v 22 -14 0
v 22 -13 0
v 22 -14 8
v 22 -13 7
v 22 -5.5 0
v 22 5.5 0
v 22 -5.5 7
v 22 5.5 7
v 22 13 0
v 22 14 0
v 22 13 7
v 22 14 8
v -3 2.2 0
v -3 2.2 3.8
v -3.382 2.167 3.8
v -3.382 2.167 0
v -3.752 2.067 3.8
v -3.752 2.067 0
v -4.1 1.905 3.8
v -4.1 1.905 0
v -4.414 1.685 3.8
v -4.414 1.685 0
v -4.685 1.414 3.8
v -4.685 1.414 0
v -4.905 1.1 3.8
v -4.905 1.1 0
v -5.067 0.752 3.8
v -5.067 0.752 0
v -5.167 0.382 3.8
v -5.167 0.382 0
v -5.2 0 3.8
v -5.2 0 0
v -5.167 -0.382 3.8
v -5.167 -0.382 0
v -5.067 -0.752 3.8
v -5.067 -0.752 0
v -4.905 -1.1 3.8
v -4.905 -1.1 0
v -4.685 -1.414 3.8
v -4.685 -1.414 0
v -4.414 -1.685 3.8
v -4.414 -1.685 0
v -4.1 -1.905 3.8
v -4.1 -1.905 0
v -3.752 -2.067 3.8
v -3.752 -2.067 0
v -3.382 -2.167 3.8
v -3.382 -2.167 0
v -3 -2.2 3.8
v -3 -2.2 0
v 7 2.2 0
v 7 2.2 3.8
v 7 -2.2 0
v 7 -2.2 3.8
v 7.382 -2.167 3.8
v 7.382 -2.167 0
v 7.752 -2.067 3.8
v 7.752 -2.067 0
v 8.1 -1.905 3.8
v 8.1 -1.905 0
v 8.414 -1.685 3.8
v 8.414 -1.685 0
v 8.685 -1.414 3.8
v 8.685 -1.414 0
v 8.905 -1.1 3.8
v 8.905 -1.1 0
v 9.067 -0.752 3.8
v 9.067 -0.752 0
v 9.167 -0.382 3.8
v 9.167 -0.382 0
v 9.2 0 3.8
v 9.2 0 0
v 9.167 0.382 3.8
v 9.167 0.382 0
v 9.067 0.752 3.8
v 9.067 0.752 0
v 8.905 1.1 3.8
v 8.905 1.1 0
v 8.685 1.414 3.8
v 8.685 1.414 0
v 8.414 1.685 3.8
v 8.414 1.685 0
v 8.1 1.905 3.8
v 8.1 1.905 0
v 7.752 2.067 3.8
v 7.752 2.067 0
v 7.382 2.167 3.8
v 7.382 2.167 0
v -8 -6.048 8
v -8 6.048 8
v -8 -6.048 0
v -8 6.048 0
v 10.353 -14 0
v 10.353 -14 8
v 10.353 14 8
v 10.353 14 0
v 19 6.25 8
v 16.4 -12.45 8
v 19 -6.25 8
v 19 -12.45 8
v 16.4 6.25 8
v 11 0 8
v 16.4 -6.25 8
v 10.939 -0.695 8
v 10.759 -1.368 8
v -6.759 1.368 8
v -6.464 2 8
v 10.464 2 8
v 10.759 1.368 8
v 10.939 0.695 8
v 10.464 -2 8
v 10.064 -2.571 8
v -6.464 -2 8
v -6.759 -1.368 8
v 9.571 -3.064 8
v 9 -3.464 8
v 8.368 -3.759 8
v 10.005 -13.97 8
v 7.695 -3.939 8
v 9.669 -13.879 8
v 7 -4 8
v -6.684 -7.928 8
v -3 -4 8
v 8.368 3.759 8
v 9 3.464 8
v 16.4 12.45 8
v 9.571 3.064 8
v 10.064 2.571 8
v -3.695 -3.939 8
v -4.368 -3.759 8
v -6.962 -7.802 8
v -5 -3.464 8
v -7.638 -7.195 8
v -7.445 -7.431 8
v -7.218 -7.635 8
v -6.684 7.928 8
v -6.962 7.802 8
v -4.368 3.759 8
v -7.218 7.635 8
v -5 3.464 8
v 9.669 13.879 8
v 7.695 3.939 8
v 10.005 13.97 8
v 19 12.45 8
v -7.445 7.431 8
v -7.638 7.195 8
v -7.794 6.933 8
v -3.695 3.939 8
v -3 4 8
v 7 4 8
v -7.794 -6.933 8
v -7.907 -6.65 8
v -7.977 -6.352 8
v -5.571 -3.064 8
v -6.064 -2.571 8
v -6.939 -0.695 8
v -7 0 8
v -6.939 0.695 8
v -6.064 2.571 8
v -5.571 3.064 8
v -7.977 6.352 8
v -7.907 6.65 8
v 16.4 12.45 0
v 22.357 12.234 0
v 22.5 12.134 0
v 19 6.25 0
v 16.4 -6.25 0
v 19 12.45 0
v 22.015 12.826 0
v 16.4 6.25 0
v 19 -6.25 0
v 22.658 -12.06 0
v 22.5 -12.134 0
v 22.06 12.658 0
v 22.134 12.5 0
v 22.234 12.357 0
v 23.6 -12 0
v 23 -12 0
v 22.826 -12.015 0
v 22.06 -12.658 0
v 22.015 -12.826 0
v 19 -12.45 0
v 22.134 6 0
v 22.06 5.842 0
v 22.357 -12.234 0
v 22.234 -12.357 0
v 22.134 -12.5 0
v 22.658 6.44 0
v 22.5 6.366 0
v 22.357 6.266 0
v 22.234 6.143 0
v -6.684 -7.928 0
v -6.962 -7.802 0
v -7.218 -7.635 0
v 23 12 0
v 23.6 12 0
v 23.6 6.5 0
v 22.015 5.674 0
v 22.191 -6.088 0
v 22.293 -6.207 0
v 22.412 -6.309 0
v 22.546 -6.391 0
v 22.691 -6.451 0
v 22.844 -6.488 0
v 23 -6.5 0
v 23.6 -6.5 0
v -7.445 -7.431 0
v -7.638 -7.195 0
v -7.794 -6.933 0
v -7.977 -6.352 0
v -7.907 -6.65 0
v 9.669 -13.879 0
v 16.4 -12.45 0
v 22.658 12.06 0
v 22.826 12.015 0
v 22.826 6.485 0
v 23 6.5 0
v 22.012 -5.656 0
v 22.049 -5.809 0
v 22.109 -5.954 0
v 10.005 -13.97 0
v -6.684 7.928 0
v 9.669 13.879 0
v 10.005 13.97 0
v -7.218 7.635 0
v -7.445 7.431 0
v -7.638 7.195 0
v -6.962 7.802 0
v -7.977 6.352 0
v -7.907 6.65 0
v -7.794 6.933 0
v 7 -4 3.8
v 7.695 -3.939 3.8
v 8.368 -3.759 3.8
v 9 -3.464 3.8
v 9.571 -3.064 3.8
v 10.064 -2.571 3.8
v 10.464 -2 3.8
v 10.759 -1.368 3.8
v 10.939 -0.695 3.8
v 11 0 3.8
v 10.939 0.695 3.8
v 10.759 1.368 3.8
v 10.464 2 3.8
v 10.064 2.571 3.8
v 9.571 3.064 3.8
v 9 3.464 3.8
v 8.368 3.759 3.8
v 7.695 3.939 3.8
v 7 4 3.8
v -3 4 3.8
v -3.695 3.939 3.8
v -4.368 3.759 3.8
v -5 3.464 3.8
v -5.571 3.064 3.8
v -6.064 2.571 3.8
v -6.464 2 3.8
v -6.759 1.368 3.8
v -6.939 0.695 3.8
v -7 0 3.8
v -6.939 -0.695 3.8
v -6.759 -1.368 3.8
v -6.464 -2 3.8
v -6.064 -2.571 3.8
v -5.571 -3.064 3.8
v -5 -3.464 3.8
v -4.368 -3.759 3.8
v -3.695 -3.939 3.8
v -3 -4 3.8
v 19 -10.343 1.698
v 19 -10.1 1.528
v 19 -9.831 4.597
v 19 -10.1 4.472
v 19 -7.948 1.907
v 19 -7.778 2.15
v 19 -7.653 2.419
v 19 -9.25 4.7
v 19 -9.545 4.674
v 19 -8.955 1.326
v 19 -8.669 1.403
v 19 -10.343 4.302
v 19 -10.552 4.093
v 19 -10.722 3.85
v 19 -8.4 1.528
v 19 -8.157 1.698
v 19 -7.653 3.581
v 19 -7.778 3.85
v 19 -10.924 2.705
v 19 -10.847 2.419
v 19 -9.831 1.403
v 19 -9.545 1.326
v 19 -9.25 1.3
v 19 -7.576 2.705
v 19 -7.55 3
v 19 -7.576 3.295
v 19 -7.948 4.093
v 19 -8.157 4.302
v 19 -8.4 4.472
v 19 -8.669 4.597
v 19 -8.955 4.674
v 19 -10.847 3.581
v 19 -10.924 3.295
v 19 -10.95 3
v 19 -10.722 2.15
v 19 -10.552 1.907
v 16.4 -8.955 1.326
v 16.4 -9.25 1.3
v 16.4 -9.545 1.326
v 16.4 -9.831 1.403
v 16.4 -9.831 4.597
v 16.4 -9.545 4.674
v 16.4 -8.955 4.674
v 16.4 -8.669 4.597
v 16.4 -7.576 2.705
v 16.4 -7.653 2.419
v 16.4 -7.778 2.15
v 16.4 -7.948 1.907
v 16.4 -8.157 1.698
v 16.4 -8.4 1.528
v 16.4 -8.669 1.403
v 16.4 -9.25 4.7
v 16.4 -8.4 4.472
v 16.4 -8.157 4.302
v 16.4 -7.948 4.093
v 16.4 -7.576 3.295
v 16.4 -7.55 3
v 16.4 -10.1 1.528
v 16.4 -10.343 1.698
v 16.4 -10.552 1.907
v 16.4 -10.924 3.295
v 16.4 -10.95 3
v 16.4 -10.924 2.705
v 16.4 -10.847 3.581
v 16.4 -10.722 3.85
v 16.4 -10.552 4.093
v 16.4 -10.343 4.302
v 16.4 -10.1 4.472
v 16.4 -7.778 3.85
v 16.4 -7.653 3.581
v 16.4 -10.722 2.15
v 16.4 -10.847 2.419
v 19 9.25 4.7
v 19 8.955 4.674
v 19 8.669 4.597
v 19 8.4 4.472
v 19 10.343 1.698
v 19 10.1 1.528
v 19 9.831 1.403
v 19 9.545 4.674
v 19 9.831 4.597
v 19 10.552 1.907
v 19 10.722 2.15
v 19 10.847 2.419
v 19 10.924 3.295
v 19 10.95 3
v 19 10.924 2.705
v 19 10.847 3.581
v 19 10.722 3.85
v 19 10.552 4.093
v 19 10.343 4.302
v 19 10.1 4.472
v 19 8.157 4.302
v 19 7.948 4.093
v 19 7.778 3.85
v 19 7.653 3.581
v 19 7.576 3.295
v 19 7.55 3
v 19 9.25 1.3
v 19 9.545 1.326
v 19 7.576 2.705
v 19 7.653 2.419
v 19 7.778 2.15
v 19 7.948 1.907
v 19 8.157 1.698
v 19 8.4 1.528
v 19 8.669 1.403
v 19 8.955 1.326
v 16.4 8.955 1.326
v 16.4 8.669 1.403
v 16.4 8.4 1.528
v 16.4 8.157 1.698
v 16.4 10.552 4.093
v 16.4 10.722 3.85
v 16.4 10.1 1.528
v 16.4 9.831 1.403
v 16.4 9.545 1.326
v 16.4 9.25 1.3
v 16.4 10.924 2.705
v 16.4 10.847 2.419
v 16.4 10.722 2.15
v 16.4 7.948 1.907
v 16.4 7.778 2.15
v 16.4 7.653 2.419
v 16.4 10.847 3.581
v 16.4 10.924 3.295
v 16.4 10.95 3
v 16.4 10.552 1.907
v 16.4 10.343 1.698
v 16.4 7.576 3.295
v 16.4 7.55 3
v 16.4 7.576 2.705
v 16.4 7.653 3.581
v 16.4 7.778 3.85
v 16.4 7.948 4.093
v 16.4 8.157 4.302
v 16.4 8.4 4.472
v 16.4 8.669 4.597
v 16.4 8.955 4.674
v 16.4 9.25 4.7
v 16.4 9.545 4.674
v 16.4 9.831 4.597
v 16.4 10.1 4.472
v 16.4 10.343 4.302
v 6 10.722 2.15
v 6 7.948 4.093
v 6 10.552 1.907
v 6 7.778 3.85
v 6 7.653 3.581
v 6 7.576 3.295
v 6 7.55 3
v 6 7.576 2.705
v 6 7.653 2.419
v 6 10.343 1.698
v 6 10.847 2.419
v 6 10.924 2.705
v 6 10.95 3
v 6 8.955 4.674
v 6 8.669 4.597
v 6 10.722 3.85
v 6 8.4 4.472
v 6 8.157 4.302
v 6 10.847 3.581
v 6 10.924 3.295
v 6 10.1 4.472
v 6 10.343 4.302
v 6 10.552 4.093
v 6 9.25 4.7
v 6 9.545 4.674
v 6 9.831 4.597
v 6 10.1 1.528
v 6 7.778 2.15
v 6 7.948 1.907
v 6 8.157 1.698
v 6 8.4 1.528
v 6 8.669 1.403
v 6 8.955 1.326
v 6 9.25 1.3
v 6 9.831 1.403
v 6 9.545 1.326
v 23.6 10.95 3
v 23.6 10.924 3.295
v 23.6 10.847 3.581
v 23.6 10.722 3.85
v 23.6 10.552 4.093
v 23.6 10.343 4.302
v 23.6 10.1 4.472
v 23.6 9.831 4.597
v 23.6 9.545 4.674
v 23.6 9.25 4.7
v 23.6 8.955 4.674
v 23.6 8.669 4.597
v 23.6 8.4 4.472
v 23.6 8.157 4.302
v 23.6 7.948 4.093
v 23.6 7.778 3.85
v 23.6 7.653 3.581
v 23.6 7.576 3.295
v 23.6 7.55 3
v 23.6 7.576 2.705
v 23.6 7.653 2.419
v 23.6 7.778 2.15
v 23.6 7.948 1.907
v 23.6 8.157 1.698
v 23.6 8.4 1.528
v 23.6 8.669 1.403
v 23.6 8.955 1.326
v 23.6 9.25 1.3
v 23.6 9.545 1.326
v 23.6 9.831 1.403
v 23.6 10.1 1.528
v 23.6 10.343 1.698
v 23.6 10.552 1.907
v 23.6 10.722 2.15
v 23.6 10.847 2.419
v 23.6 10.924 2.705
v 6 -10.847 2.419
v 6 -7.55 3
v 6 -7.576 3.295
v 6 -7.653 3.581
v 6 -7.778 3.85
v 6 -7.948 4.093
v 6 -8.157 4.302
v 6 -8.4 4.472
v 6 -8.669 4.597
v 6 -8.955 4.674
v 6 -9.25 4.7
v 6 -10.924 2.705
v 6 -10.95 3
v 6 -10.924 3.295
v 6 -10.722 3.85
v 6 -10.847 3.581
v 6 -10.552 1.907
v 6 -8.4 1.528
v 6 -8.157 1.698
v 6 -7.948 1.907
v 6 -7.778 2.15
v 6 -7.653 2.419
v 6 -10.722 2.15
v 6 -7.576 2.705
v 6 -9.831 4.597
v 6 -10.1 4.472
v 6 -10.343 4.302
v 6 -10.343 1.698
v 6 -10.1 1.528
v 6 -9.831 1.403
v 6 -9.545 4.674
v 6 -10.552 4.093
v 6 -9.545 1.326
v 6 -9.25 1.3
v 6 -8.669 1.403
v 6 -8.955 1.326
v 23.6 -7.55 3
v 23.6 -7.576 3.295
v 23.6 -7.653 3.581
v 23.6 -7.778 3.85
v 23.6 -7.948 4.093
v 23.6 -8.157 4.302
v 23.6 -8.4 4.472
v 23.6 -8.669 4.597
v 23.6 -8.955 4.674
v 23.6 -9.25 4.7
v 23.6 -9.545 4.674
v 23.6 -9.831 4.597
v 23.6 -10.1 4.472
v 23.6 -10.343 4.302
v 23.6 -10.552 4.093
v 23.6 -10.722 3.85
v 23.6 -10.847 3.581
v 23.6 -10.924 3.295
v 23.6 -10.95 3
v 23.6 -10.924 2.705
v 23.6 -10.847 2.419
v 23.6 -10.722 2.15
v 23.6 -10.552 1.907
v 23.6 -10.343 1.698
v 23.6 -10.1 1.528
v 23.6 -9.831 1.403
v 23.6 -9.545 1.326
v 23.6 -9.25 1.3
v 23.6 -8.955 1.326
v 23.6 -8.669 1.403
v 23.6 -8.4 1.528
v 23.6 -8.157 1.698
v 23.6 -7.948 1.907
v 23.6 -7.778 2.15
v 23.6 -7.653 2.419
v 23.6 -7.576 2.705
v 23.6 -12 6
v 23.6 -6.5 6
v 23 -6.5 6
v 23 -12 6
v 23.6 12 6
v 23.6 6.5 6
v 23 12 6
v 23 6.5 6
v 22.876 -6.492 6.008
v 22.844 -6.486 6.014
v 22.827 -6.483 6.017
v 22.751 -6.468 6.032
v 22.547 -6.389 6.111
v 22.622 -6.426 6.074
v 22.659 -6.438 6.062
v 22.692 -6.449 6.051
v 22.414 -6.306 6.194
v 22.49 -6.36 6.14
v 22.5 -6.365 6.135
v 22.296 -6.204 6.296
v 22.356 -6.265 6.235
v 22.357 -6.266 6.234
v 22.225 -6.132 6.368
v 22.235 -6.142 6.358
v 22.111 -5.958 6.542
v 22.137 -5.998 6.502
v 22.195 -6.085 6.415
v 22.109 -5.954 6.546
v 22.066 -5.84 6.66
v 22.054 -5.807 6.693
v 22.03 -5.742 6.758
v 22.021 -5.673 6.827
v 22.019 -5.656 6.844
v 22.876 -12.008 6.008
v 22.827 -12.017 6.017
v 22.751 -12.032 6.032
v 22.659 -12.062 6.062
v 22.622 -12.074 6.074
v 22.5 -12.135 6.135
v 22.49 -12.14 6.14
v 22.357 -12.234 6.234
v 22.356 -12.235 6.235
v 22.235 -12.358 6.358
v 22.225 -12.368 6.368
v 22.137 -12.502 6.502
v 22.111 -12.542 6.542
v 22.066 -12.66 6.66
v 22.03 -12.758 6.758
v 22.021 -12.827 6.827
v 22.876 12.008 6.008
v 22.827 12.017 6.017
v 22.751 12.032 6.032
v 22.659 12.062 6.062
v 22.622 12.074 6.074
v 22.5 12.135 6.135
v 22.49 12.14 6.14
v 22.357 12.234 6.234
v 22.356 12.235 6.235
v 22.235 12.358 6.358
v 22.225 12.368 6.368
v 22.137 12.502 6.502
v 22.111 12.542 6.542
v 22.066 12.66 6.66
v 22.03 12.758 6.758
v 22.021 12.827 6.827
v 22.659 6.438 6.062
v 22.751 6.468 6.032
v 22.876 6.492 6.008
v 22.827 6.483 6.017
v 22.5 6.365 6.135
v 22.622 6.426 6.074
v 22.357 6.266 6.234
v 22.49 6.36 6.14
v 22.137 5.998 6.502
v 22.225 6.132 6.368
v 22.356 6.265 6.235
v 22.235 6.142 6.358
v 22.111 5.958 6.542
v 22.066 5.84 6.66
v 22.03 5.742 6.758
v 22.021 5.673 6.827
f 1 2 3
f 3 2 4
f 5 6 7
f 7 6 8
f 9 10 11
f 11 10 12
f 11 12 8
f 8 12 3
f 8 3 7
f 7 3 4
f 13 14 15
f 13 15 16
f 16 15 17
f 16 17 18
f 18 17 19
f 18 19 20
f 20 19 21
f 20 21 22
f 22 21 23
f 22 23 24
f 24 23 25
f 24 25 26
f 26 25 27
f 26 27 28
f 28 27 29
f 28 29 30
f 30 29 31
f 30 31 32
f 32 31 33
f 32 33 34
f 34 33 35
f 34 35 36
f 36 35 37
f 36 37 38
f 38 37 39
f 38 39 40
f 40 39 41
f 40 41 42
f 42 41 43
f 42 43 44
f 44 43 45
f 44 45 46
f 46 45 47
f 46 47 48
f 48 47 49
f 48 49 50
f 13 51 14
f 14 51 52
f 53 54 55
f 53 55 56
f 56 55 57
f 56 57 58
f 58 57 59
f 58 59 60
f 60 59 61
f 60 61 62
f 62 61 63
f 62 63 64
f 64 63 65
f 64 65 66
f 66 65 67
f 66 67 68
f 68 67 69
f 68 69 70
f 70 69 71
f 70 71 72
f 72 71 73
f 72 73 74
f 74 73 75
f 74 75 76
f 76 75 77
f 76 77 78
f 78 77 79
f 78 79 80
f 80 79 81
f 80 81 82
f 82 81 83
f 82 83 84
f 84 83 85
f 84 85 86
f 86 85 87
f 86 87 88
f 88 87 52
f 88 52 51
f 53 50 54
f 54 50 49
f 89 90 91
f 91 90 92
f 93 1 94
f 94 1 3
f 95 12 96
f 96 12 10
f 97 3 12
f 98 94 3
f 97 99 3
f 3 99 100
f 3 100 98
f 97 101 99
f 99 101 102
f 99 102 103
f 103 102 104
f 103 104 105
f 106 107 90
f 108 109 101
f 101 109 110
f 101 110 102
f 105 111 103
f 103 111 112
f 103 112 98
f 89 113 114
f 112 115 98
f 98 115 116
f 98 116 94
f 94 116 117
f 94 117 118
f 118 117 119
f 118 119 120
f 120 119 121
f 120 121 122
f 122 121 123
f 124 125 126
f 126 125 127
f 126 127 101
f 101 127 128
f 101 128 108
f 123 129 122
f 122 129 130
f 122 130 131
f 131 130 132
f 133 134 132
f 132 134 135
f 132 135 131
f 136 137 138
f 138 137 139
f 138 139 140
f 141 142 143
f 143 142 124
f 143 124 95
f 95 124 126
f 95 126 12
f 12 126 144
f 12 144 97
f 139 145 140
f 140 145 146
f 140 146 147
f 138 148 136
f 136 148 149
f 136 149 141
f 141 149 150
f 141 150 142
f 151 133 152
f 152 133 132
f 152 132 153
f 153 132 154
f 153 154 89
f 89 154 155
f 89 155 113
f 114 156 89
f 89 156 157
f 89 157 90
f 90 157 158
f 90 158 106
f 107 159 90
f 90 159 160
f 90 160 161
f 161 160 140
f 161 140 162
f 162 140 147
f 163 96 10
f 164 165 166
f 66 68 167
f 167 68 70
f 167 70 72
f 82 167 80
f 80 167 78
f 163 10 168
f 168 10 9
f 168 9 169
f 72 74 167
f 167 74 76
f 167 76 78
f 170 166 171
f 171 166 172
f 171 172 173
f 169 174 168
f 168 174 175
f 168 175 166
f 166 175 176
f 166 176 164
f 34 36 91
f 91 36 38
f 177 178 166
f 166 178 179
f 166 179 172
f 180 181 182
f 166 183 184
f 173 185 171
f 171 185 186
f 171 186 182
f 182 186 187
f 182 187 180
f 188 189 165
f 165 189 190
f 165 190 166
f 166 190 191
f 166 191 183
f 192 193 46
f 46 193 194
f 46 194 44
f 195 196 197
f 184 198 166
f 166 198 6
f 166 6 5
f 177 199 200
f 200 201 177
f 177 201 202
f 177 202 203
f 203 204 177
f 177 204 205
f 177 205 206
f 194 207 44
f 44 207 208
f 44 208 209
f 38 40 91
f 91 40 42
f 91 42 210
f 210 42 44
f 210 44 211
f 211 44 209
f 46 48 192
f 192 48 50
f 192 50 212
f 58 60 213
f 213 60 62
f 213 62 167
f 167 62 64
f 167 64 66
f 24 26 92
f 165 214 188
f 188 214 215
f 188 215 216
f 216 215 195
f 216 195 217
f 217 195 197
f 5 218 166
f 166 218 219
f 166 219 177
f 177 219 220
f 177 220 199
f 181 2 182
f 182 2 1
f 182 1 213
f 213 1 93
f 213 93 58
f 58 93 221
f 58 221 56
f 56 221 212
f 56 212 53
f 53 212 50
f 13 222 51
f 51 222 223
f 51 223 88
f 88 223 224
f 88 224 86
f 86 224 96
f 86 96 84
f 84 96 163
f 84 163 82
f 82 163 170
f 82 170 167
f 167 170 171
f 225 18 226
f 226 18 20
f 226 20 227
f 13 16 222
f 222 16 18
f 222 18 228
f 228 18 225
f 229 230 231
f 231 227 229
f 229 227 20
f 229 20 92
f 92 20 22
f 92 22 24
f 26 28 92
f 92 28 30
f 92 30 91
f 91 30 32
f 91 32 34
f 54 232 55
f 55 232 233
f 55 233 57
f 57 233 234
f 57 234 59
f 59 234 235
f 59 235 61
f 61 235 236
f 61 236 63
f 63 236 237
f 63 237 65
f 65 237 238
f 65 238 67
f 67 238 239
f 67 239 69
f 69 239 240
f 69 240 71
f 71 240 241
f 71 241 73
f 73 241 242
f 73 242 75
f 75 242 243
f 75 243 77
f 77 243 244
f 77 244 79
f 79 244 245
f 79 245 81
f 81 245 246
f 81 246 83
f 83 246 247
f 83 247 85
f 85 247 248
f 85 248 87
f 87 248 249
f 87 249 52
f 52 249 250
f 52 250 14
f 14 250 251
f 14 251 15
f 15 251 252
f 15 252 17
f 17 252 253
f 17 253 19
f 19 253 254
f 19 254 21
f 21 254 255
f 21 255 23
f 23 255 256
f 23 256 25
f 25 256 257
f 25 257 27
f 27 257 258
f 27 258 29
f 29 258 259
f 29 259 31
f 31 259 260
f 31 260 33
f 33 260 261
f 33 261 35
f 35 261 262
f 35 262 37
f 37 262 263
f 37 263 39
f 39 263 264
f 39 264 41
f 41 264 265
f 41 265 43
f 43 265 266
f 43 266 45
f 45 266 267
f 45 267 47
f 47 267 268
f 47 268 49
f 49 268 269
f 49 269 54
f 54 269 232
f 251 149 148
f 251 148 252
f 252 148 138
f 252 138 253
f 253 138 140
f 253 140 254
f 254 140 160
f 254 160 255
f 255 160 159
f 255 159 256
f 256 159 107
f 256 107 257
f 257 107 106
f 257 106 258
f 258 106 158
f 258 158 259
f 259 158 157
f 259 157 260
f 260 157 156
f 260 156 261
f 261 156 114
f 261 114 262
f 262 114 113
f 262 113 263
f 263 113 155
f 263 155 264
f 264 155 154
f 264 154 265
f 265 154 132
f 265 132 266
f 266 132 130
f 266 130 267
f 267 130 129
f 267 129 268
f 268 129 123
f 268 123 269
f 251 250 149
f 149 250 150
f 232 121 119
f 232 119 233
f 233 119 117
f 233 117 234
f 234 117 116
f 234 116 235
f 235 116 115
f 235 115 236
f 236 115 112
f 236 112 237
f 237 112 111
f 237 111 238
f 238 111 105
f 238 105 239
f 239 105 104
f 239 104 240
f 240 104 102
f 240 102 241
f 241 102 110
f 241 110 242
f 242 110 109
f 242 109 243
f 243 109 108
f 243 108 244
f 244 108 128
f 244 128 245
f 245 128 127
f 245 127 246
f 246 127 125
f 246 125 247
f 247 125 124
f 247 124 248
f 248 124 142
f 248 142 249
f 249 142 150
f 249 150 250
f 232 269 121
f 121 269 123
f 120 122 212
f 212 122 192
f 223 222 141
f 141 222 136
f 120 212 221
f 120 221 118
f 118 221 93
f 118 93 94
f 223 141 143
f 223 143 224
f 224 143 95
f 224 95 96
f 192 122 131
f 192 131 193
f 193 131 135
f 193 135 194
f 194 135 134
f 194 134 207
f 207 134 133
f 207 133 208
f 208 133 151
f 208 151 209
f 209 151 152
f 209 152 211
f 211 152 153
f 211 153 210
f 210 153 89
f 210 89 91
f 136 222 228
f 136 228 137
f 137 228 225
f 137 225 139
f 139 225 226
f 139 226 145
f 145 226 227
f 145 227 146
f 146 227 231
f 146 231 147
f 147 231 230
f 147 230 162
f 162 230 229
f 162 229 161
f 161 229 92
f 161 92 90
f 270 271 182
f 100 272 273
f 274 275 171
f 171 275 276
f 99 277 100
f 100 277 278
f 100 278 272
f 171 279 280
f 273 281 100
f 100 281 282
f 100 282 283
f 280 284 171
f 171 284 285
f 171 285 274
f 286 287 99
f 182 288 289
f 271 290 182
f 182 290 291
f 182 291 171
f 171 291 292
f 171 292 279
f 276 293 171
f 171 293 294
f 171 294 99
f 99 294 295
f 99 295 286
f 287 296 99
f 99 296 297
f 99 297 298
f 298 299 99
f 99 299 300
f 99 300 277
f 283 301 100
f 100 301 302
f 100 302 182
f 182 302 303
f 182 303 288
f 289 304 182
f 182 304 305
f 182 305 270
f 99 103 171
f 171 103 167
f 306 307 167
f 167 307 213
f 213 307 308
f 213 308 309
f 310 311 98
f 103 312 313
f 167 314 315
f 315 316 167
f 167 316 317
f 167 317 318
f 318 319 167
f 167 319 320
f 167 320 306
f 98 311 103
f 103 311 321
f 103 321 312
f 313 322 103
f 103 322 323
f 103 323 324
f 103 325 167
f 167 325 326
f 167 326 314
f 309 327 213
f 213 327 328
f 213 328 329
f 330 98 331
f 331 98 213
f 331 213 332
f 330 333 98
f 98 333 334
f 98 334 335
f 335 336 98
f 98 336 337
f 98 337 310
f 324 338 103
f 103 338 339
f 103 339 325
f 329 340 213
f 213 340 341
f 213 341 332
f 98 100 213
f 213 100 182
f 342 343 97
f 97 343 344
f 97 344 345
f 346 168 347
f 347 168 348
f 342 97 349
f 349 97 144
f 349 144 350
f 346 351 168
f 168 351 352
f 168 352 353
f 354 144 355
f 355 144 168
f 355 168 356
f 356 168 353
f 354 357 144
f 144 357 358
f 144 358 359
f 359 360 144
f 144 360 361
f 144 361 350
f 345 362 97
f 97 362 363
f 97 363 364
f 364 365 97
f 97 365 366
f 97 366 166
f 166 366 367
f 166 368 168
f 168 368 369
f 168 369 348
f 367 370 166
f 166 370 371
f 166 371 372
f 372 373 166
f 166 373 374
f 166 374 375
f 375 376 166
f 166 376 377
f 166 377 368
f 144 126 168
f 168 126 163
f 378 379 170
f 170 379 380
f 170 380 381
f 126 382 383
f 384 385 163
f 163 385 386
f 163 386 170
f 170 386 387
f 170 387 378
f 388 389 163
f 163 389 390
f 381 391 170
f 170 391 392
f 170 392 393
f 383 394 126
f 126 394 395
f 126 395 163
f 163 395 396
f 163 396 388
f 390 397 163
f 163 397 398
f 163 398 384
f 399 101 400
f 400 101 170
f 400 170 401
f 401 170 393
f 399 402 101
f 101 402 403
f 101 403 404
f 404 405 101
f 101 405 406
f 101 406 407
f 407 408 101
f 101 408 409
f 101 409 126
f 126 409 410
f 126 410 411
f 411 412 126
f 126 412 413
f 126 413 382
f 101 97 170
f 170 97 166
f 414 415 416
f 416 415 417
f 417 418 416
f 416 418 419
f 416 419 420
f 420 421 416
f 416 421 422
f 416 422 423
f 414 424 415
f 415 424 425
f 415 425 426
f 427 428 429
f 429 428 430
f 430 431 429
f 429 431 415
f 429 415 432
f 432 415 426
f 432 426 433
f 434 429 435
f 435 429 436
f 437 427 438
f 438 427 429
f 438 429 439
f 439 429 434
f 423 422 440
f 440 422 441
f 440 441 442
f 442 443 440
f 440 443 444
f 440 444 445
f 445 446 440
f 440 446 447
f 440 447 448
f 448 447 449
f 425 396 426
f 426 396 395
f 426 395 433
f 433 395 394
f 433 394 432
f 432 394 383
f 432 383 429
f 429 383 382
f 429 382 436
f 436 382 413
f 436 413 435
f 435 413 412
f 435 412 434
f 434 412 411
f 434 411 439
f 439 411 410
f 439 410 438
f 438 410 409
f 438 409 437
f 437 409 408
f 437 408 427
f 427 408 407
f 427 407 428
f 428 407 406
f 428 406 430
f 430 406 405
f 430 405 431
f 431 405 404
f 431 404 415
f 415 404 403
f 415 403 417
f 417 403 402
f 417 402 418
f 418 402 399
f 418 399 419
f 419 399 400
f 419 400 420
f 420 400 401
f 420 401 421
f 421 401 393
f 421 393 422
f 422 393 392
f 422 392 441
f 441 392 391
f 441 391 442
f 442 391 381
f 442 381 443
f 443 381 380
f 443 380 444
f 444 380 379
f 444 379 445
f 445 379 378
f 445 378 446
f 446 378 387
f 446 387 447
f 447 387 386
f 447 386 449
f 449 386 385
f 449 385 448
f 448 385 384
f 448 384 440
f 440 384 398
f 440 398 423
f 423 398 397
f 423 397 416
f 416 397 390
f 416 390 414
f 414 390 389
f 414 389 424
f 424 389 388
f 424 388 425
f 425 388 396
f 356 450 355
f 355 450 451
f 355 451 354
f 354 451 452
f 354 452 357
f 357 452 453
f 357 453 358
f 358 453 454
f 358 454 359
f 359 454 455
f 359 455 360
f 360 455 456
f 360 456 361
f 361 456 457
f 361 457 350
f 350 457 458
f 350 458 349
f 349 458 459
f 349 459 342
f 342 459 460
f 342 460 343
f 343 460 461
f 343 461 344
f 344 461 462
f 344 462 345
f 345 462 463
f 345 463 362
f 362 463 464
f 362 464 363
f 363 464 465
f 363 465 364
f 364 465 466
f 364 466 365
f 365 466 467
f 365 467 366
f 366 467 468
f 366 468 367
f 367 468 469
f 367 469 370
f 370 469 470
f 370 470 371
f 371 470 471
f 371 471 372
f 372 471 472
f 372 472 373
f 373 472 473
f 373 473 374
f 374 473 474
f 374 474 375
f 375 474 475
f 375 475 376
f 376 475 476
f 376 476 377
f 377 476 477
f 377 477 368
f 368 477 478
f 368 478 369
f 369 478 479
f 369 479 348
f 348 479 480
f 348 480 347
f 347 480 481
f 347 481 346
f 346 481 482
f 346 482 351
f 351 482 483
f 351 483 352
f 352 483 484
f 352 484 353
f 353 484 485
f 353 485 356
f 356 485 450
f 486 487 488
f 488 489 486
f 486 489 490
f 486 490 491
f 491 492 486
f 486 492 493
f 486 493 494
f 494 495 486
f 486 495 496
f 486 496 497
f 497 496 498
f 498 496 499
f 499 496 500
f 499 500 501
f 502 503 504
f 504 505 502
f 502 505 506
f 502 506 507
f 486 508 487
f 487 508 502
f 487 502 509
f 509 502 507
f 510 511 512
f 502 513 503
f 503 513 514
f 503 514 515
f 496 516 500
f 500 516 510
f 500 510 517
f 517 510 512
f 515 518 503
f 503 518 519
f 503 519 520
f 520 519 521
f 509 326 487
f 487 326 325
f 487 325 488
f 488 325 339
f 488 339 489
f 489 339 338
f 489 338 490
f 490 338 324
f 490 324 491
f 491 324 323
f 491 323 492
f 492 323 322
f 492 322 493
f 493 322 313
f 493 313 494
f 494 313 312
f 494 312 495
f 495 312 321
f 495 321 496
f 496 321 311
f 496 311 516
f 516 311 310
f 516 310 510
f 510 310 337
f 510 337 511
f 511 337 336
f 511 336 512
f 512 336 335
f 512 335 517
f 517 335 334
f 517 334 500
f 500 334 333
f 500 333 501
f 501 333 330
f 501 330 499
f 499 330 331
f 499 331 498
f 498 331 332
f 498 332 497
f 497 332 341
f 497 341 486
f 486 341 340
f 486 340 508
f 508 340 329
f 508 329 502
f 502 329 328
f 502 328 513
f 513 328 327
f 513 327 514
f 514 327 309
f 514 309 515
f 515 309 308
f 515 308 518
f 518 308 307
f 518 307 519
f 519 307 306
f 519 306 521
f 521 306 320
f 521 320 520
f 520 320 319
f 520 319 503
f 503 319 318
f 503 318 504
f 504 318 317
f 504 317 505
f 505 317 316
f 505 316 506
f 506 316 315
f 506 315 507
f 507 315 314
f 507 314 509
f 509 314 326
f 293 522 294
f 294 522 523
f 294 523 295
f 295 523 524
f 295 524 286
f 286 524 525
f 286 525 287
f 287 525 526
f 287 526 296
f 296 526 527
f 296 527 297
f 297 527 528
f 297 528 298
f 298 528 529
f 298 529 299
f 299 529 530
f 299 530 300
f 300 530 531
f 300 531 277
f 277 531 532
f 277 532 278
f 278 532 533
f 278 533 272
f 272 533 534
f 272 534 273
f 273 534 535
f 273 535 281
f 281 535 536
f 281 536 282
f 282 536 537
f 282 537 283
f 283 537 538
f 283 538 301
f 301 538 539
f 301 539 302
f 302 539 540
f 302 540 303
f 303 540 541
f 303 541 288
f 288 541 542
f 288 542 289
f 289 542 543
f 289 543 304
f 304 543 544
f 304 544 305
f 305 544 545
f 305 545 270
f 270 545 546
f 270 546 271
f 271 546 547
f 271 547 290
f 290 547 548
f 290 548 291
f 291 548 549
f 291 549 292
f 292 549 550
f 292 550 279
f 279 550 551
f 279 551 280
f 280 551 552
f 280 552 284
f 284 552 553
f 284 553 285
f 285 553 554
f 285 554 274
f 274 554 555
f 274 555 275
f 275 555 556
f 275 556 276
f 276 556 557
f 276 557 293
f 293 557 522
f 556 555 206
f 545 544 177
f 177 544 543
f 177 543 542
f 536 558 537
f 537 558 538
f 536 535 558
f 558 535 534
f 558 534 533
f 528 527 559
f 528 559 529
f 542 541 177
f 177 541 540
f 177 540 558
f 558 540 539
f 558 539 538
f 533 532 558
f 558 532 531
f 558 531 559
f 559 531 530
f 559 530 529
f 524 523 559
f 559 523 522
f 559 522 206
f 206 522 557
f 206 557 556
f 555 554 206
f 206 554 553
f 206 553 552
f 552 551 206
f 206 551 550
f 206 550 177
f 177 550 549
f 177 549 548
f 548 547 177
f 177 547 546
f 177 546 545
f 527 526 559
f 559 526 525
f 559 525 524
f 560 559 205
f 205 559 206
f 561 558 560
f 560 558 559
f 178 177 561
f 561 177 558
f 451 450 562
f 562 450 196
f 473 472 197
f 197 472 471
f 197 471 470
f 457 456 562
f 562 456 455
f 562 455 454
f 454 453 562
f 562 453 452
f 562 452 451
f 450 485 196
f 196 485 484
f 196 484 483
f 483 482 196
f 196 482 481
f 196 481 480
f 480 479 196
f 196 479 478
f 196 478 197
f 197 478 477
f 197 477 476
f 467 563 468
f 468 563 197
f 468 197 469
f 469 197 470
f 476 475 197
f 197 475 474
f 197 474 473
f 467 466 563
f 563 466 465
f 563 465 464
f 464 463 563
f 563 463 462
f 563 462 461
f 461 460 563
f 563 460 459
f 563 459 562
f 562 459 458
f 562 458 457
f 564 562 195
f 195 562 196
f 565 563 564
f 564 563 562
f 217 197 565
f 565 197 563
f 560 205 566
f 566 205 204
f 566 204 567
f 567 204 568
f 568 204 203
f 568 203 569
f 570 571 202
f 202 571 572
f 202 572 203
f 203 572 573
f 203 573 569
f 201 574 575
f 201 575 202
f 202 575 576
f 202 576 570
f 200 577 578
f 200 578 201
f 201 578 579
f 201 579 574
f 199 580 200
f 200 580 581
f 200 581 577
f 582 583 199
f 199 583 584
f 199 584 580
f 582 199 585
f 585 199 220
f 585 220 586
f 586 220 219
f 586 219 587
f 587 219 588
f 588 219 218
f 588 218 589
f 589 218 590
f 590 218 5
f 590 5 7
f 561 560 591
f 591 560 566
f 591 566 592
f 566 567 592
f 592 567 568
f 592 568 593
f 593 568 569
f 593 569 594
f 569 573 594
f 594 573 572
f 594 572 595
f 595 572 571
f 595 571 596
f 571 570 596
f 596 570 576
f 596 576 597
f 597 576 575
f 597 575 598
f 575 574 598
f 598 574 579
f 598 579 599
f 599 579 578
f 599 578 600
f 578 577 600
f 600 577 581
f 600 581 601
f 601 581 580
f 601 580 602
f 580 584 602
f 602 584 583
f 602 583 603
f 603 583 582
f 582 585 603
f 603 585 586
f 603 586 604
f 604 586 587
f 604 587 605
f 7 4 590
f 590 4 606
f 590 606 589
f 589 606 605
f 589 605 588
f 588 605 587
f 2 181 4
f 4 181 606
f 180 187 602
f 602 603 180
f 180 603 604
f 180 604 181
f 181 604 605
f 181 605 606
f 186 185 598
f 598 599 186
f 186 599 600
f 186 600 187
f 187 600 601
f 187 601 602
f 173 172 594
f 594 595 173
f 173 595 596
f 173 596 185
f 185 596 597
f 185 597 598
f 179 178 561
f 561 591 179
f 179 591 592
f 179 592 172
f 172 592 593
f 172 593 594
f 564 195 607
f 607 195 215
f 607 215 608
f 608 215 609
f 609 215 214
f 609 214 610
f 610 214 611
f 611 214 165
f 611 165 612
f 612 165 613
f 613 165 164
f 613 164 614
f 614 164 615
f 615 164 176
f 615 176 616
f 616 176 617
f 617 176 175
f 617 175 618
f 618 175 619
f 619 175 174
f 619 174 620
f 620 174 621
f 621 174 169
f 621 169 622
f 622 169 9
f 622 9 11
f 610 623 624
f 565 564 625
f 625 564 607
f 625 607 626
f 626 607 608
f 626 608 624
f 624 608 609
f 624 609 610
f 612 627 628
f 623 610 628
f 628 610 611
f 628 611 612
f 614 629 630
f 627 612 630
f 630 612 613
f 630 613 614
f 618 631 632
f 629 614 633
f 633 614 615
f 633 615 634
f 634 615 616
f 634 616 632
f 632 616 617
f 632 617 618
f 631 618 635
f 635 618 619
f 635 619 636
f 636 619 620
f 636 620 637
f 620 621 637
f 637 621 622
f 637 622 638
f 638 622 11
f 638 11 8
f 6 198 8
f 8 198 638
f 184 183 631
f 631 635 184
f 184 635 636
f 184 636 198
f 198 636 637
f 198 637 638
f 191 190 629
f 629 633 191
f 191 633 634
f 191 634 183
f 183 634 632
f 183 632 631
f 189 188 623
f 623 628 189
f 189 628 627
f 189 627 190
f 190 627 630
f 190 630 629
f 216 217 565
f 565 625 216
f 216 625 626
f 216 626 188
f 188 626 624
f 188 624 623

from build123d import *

# Parameters (mm, degrees)
ESQUISSE1_W             = 30
ESQUISSE1_H             = 28
BOSS_EXTRU_1_DEPTH      = 8
ENL_V_MAT_EXTRU_1_DEPTH = 9
ENL_V_MAT_EXTRU_2_DEPTH = 4.2
CHANFREIN1_SIZE         = 18
CHANFREIN1_SIZE2        = 6.551464217
CHANFREIN1_PART_2_SIZE  = 18
CHANFREIN1_PART_2_SIZE2 = 6.551464217
CONG_1_R                = 2
ESQUISSE4_W             = 2.6
ESQUISSE4_H             = 6.2
ENL_V_MAT_EXTRU_3_DEPTH = 9
ESQUISSE5_R             = 1.7
ENL_V_MAT_EXTRU_4_DEPTH = 16
ESQUISSE6_W             = 6
ESQUISSE6_H             = 5.5
ESQUISSE6_R             = 1.7
BOSS_EXTRU_2_DEPTH      = 1.6
CONG_2_R                = 1


with BuildPart() as part:
    # Esquisse1 → Boss.-Extru.1 (new body)
    with BuildSketch(Plane.XY):
        with Locations((7, 0)):
            Rectangle(ESQUISSE1_W, ESQUISSE1_H)
    extrude(amount=BOSS_EXTRU_1_DEPTH)

    # Esquisse2 → Enlèv. mat.-Extru.1 (cut, through all)
    with BuildSketch(Plane.XY.offset(8)):
        with BuildLine():
            Line((-3, 2.2), (7, 2.2))
            ThreePointArc((7, 2.2), (9.2, 0), (7, -2.2))
            Line((7, -2.2), (-3, -2.2))
            ThreePointArc((-3, -2.2), (-5.2, 0), (-3, 2.2))
        make_face()
    extrude(amount=-ENL_V_MAT_EXTRU_1_DEPTH, mode=Mode.SUBTRACT)

    # Esquisse3 → Enlèv. mat.-Extru.2 (cut)
    with BuildSketch(Plane.XY.offset(8)):
        with BuildLine():
            Line((-3, 4), (7, 4))
            ThreePointArc((7, 4), (11, 0), (7, -4))
            Line((7, -4), (-3, -4))
            ThreePointArc((-3, -4), (-7, 0), (-3, 4))
        make_face()
    extrude(amount=-ENL_V_MAT_EXTRU_2_DEPTH, mode=Mode.SUBTRACT)

    # Chanfrein1
    chanfrein1_edges = [part.edges().sort_by_distance(p)[0] for p in [
        (-8, 14, 4),
    ]]
    chanfrein1_side = [part.faces().sort_by_distance(p)[0] for p in [
        (7, 14, 4),
    ]]
    chamfer(chanfrein1_edges, length=CHANFREIN1_SIZE, length2=CHANFREIN1_SIZE2, reference=chanfrein1_side[0])

    # Chanfrein1 part 2
    chanfrein1_part_2_edges = [part.edges().sort_by_distance(p)[0] for p in [
        (-8, -14, 4),
    ]]
    chanfrein1_part_2_side = [part.faces().sort_by_distance(p)[0] for p in [
        (7, -14, 4),
    ]]
    chamfer(chanfrein1_part_2_edges, length=CHANFREIN1_PART_2_SIZE, length2=CHANFREIN1_PART_2_SIZE2, reference=chanfrein1_part_2_side[0])

    # Congé1
    cong_1_edges = [part.edges().sort_by_distance(p)[0] for p in [
        (10, -14, 4),
        (-8, 7.448535783, 4),
        (-8, -7.448535783, 4),
        (10, 14, 4),
    ]]
    fillet(cong_1_edges, radius=CONG_1_R)

    # Esquisse4 → Enlèv. mat.-Extru.3 (cut, through all)
    with BuildSketch(Plane(origin=(0, 0, 0), x_dir=(-1, 0, 0), z_dir=(0, 0, -1))):
        with Locations((-17.7, -9.35)):
            Rectangle(ESQUISSE4_W, ESQUISSE4_H)
        with Locations((-17.7, 9.35)):
            Rectangle(ESQUISSE4_W, ESQUISSE4_H)
    extrude(amount=-ENL_V_MAT_EXTRU_3_DEPTH, mode=Mode.SUBTRACT)

    # Esquisse5 → Enlèv. mat.-Extru.4 (cut)
    with BuildSketch(Plane(origin=(22, 0, 0), x_dir=(0, 0, -1), z_dir=(1, 0, 0))):
        with Locations((-3, 9.25)):
            Circle(ESQUISSE5_R)
        with Locations((-3, -9.25)):
            Circle(ESQUISSE5_R)
    extrude(amount=-ENL_V_MAT_EXTRU_4_DEPTH, mode=Mode.SUBTRACT)

    # Esquisse6 → Boss.-Extru.2 (add)
    with BuildSketch(Plane(origin=(22, 0, 0), x_dir=(0, 0, -1), z_dir=(1, 0, 0))):
        with Locations((-3, -9.25)):
            Rectangle(ESQUISSE6_W, ESQUISSE6_H)
        with Locations((-3, -9.25)):
            Circle(ESQUISSE6_R, mode=Mode.SUBTRACT)
        with Locations((-3, 9.25)):
            Rectangle(ESQUISSE6_W, ESQUISSE6_H)
        with Locations((-3, 9.25)):
            Circle(ESQUISSE6_R, mode=Mode.SUBTRACT)
    extrude(amount=BOSS_EXTRU_2_DEPTH)

    # Congé2
    cong_2_edges = [part.edges().sort_by_distance(p)[0] for p in [
        (22, -12, 3),
        (22, 6.5, 3),
        (22, -9.25, 6),
        (22, -6.5, 3),
        (22, 9.25, 6),
        (22, 12, 3),
    ]]
    fillet(cong_2_edges, radius=CONG_2_R)


solid = part.part
